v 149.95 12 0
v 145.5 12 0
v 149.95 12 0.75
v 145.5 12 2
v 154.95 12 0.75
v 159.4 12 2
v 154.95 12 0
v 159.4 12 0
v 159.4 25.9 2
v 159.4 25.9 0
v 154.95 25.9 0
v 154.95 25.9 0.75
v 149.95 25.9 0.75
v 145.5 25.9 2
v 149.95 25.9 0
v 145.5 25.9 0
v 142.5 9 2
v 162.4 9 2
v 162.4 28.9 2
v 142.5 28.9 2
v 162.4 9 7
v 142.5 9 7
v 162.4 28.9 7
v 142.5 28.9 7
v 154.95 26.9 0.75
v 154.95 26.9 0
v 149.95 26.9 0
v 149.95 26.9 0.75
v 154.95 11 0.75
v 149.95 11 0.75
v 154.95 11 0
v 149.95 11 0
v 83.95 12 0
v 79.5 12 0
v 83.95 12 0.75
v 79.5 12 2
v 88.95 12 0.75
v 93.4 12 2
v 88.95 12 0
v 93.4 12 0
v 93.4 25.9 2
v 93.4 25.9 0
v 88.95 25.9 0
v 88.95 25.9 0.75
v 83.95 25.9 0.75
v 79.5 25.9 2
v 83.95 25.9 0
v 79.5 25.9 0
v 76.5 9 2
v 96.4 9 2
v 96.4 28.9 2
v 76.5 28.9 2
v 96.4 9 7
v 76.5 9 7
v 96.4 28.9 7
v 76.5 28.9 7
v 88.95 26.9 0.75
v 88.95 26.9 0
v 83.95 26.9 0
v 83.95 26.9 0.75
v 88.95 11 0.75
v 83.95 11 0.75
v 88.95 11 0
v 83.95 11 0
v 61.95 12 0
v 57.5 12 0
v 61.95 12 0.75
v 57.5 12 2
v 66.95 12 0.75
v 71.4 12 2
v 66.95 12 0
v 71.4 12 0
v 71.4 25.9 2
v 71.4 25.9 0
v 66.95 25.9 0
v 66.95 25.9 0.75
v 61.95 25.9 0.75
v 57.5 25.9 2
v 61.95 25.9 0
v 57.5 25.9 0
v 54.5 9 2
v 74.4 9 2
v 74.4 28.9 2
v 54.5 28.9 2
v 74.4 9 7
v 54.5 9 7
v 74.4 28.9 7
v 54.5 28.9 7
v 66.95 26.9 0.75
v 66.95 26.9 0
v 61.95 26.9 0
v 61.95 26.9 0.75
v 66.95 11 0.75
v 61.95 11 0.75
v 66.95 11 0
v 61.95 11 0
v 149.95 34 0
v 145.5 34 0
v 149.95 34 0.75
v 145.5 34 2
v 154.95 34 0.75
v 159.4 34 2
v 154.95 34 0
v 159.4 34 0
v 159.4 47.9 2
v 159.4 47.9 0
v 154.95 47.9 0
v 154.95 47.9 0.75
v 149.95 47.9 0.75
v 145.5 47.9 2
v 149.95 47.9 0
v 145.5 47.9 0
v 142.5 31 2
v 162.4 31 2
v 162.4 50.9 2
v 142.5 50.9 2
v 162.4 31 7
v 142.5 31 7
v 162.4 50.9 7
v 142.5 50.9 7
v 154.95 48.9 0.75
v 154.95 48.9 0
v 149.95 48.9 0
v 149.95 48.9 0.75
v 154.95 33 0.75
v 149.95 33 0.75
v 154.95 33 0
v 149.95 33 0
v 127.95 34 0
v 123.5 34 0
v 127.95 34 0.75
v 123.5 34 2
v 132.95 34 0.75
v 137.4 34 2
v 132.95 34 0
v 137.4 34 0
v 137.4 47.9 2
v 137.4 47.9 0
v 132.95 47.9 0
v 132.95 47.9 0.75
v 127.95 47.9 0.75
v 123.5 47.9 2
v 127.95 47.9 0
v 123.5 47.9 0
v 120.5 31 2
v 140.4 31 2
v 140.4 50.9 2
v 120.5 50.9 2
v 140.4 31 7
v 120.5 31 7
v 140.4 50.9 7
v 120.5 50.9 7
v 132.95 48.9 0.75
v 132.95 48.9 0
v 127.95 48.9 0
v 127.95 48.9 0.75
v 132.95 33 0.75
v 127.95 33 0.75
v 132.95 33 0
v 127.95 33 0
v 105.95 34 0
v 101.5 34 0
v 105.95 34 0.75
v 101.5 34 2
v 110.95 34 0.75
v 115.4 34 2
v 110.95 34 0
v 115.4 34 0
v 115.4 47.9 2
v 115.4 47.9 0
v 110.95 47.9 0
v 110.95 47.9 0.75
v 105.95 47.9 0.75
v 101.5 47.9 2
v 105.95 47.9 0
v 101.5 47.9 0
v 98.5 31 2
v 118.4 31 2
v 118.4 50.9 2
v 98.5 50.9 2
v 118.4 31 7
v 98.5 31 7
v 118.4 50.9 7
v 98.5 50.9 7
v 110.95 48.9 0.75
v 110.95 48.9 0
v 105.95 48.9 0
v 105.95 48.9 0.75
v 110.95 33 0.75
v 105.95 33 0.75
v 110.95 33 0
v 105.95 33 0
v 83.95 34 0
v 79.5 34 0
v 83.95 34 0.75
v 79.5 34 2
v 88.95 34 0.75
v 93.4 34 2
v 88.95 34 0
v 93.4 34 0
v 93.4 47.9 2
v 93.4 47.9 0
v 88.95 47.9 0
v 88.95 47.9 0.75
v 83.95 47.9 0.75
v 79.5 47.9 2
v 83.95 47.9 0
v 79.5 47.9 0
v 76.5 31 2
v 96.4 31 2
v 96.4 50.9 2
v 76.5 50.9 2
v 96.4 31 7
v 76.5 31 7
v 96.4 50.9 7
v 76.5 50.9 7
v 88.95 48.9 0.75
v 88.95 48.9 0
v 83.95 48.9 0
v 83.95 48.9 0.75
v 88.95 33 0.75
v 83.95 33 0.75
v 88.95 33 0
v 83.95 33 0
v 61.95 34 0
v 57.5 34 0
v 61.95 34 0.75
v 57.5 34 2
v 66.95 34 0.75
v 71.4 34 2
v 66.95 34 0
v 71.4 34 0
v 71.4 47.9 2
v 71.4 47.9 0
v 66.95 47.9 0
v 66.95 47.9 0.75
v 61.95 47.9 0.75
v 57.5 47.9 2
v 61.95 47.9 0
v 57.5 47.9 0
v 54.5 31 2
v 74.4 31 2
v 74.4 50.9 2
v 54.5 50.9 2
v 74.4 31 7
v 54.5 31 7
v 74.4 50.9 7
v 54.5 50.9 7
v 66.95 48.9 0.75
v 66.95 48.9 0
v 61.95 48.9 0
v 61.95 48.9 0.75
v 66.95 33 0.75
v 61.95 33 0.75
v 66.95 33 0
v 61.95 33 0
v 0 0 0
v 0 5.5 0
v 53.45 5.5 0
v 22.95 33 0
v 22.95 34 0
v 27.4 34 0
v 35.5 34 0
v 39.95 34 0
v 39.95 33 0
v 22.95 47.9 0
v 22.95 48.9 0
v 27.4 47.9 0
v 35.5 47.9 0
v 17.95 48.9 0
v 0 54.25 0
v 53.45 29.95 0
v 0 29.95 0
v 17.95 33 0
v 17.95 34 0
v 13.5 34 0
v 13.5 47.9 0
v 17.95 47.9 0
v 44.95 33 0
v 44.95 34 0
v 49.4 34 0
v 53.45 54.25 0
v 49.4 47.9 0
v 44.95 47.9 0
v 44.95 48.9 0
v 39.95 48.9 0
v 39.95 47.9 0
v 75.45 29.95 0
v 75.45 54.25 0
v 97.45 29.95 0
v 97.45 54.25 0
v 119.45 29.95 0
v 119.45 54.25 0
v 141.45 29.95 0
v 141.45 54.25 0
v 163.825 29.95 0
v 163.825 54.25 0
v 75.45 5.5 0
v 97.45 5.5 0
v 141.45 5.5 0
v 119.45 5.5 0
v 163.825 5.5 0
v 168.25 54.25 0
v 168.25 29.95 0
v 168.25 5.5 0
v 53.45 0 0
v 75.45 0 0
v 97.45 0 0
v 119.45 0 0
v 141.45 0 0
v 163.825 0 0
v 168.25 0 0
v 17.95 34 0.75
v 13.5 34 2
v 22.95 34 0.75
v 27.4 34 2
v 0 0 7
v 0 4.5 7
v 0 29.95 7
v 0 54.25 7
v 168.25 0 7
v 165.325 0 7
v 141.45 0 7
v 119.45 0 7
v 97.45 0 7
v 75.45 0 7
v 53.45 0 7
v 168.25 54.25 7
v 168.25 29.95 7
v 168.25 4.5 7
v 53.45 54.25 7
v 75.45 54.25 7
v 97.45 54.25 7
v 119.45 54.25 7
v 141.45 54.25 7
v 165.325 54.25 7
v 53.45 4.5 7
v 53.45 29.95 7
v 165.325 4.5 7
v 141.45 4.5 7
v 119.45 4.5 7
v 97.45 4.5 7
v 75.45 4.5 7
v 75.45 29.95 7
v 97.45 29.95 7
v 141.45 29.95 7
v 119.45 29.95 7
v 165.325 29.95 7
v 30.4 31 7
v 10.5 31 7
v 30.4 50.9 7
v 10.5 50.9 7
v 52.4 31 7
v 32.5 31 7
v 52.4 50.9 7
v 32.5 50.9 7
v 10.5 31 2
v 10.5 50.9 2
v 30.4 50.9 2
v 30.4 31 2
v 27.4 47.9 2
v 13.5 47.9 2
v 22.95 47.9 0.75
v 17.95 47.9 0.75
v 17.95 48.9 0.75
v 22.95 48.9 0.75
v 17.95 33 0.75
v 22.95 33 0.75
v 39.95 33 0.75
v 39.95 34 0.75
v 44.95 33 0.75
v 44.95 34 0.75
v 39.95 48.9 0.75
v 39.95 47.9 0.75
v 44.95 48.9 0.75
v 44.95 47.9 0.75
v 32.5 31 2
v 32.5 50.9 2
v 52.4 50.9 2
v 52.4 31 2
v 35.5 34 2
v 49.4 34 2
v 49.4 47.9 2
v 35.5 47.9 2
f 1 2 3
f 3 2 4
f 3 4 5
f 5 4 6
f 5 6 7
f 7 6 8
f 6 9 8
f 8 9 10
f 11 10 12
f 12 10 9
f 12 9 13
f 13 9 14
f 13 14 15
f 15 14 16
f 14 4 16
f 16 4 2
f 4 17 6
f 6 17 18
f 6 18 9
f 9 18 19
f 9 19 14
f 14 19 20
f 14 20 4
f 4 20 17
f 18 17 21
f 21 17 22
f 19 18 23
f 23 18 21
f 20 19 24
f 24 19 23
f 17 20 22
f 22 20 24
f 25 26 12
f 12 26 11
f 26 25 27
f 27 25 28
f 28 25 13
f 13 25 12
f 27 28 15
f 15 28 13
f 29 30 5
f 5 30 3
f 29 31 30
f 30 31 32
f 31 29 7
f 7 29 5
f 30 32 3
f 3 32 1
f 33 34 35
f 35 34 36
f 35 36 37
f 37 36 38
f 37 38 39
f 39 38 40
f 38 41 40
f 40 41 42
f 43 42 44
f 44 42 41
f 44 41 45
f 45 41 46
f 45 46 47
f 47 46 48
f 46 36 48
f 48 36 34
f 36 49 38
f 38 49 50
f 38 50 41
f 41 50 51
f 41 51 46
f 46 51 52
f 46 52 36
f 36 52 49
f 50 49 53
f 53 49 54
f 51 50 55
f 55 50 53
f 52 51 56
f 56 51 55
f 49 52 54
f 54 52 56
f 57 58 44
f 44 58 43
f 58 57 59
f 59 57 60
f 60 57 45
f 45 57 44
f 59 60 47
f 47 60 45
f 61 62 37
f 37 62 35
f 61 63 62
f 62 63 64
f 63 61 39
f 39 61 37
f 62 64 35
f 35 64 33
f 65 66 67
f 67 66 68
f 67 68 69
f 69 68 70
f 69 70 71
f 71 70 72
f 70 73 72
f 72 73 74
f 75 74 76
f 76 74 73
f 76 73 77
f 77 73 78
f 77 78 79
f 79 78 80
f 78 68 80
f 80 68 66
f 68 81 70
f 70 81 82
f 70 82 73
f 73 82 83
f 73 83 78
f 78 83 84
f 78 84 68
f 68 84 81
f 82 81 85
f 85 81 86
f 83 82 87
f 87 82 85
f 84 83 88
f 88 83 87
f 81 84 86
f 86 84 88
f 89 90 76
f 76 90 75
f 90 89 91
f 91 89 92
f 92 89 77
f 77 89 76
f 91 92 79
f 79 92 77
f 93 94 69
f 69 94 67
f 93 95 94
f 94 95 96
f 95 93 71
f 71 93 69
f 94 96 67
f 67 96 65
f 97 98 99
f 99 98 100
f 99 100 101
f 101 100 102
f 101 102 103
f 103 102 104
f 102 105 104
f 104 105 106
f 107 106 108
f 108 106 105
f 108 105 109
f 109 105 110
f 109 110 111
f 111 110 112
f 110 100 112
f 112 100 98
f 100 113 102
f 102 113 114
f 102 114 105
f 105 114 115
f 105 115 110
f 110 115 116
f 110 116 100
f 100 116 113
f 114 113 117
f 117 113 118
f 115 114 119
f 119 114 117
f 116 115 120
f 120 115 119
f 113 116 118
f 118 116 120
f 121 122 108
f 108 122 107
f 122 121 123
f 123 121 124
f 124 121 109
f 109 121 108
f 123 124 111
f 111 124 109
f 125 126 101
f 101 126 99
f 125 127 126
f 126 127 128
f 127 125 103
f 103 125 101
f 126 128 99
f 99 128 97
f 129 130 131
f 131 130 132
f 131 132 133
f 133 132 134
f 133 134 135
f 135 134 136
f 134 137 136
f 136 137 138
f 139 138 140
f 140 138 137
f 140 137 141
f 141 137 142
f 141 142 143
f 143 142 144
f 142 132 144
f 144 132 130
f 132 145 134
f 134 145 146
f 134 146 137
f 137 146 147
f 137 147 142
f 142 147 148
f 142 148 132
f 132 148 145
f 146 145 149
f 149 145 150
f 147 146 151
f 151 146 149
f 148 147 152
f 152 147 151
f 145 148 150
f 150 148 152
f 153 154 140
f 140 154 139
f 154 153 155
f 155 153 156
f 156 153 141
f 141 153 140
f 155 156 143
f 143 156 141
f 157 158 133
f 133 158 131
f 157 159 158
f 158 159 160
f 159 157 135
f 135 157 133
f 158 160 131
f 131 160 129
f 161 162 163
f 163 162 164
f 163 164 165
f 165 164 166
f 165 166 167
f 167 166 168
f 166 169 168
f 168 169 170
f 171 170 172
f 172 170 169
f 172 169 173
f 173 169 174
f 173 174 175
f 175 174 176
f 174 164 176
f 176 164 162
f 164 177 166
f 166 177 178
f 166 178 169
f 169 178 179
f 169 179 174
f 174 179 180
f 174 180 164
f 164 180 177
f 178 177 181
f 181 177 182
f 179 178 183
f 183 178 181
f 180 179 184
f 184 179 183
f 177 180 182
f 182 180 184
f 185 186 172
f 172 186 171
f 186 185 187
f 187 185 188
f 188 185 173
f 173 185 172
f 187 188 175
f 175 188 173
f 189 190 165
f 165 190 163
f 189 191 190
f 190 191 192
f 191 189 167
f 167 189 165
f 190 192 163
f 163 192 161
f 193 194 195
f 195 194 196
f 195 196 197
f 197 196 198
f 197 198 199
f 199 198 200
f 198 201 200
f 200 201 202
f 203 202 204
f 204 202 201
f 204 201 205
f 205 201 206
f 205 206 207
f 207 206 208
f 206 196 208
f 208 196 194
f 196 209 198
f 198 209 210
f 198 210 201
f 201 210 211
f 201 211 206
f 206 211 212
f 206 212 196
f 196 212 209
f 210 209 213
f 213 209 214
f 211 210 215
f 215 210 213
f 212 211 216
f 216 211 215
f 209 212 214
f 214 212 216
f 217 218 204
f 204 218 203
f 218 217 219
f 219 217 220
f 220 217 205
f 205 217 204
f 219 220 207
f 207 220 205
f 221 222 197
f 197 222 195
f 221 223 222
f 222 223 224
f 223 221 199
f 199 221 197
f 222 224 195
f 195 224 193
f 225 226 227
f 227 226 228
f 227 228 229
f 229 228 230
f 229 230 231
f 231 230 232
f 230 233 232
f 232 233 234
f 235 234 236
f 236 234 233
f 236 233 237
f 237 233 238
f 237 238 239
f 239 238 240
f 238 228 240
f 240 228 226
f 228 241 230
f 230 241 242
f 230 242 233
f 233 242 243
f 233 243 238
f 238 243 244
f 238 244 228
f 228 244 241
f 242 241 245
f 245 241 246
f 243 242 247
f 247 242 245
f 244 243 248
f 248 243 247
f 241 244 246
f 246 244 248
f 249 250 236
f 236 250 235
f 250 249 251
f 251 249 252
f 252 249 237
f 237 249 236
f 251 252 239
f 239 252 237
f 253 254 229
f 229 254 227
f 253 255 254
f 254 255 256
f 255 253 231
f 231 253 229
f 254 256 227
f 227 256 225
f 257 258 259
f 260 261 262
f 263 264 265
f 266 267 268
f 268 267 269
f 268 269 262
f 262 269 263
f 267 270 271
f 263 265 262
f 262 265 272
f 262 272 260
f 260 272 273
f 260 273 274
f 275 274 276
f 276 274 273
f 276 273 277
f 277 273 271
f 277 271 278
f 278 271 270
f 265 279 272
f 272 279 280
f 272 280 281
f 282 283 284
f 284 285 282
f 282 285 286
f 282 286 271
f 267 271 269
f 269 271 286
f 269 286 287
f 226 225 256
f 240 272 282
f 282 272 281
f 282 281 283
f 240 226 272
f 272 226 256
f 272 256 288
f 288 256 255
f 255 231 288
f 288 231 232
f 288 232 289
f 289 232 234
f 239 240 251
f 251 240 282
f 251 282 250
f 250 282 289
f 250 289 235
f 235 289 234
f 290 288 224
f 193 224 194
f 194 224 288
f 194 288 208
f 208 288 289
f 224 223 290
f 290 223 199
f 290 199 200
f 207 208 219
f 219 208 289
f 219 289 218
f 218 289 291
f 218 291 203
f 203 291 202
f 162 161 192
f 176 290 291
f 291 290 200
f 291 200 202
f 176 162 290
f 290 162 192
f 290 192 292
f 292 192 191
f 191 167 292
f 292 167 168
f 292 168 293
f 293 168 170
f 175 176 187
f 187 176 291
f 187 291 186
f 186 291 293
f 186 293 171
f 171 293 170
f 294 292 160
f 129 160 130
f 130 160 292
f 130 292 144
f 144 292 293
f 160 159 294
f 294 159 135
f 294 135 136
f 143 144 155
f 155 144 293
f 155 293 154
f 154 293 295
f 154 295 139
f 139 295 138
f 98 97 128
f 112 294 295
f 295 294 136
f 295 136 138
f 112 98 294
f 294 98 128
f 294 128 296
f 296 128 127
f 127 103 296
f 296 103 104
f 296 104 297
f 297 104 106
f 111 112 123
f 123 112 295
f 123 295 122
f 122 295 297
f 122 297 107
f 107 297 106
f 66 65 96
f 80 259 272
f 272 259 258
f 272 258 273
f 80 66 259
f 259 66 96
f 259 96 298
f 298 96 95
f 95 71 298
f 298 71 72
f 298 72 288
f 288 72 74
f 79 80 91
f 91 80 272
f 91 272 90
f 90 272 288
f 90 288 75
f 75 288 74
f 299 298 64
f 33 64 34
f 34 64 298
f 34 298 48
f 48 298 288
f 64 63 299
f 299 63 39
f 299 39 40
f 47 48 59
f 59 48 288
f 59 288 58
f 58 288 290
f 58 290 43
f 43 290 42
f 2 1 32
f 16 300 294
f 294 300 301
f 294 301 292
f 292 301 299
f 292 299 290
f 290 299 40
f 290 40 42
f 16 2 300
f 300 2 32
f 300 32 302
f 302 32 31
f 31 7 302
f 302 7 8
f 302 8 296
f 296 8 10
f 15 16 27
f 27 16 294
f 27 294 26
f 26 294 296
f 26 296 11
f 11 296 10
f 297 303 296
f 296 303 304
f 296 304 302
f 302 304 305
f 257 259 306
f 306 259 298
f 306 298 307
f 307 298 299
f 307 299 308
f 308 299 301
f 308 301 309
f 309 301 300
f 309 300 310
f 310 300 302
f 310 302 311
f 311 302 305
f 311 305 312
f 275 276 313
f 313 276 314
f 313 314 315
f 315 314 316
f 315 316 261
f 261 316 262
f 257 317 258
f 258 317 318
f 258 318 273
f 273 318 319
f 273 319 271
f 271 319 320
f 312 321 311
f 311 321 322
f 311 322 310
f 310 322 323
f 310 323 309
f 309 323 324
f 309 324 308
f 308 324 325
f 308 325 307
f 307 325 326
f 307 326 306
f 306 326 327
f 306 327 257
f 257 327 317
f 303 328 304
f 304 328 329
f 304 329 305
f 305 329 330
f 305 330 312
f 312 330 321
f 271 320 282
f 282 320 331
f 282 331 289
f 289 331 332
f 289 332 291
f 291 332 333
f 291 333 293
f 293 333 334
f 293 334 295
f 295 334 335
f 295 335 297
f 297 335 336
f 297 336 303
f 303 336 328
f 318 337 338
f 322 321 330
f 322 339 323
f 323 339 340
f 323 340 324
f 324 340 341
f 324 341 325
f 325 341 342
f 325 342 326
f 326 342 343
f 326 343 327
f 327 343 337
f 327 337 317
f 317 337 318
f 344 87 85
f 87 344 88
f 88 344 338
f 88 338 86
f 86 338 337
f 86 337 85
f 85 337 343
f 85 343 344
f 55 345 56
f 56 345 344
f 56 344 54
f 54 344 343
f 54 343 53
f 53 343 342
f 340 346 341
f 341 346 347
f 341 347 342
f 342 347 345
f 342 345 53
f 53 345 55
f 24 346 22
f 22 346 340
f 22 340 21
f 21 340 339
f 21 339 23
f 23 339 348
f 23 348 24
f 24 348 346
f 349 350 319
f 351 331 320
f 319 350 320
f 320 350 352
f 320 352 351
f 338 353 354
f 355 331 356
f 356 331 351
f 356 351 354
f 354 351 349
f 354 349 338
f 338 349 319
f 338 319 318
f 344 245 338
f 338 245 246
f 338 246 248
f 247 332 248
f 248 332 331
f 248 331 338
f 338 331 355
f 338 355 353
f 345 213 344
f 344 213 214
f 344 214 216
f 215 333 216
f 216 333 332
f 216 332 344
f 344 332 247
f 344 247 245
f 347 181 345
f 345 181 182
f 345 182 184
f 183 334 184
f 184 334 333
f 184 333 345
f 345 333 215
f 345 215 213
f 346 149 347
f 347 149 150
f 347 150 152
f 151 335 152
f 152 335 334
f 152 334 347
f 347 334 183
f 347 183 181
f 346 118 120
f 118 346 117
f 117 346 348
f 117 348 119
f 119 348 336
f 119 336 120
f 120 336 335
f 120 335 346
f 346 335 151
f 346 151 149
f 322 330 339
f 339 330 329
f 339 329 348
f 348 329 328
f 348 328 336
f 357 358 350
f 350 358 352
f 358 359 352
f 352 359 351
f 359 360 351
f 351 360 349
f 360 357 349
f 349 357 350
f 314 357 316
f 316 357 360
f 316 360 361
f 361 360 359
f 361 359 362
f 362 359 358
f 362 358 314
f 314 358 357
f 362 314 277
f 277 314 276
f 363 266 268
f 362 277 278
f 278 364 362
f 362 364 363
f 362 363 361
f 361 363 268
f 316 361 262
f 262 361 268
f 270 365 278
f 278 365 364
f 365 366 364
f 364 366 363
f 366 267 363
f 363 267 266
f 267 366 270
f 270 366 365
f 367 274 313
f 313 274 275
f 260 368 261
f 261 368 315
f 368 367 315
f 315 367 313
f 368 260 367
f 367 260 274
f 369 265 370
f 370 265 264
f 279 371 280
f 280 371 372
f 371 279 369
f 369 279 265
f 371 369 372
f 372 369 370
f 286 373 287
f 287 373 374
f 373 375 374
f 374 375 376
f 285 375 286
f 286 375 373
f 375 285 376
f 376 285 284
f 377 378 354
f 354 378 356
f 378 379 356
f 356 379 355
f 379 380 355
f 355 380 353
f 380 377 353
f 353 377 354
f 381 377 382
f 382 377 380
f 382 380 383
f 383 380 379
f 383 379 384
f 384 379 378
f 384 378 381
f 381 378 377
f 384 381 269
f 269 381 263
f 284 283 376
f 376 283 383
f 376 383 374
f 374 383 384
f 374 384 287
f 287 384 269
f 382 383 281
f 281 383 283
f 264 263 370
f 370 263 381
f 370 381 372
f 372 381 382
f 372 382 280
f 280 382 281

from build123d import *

# Parameters (mm, degrees)
SKETCH6_W                 = 168.25
SKETCH6_H                 = 54.25
BOSS_EXTRUDE2_DEPTH       = 7
SKETCH7_W                 = 19.9
SKETCH7_H                 = 19.9
CUT_EXTRUDE4_DEPTH        = 5
SKETCH8_W                 = 13.9
SKETCH8_H                 = 13.9
CUT_EXTRUDE5_DEPTH        = 4
SKETCH9_W                 = 5
SKETCH9_H                 = 0.75
CUT_EXTRUDE6_DEPTH        = 1
LPATTERN1_COUNT           = 7
LPATTERN1_PITCH           = 22
LPATTERN1_COUNT_DIR2      = 2
LPATTERN1_PITCH_DIR2      = 22
LPATTERN1_COPY_1_SKETCH_W = 5
LPATTERN1_COPY_1_SKETCH_H = 0.75
LPATTERN1_COPY_1_DEPTH    = 1
LPATTERN1_COPY_2_SKETCH_W = 5
LPATTERN1_COPY_2_SKETCH_H = 0.75
LPATTERN1_COPY_2_DEPTH    = 1
LPATTERN1_COPY_3_SKETCH_W = 5
LPATTERN1_COPY_3_SKETCH_H = 0.75
LPATTERN1_COPY_3_DEPTH    = 1
LPATTERN1_COPY_4_SKETCH_W = 5
LPATTERN1_COPY_4_SKETCH_H = 0.75
LPATTERN1_COPY_4_DEPTH    = 1
LPATTERN1_COPY_5_SKETCH_W = 5
LPATTERN1_COPY_5_SKETCH_H = 0.75
LPATTERN1_COPY_5_DEPTH    = 1
LPATTERN1_COPY_6_SKETCH_W = 5
LPATTERN1_COPY_6_SKETCH_H = 0.75
LPATTERN1_COPY_6_DEPTH    = 1
LPATTERN1_COPY_7_SKETCH_W = 5
LPATTERN1_COPY_7_SKETCH_H = 0.75
LPATTERN1_COPY_7_DEPTH    = 1
LPATTERN1_COPY_8_SKETCH_W = 5
LPATTERN1_COPY_8_SKETCH_H = 0.75
LPATTERN1_COPY_8_DEPTH    = 1
LPATTERN1_COPY_9_SKETCH_W = 5
LPATTERN1_COPY_9_SKETCH_H = 0.75
LPATTERN1_COPY_9_DEPTH    = 1


with BuildPart() as part:
    # Sketch6 → Boss-Extrude2 (new body)
    with BuildSketch(Plane.XY):
        with Locations((84.125, 27.125)):
            Rectangle(SKETCH6_W, SKETCH6_H)
    extrude(amount=BOSS_EXTRUDE2_DEPTH)

    # Sketch7 → Cut-Extrude4 (cut)
    with BuildSketch(Plane.XY.offset(7)):
        with Locations((20.45, 40.95)):
            Rectangle(SKETCH7_W, SKETCH7_H)
    cut_extrude4 = extrude(amount=-CUT_EXTRUDE4_DEPTH, mode=Mode.SUBTRACT)

    # Sketch8 → Cut-Extrude5 (cut)
    with BuildSketch(Plane.XY.offset(2)):
        with Locations((20.45, 40.95)):
            Rectangle(SKETCH8_W, SKETCH8_H)
    cut_extrude5 = extrude(amount=-CUT_EXTRUDE5_DEPTH, mode=Mode.SUBTRACT)

    # Sketch9 → Cut-Extrude6 (cut)
    with BuildSketch(Plane(origin=(0, 47.9, 0), x_dir=(-1, 0, 0), z_dir=(0, -1, 0))):
        with Locations((-20.45, -0.375)):
            Rectangle(SKETCH9_W, SKETCH9_H)
    cut_extrude6 = extrude(amount=-CUT_EXTRUDE6_DEPTH, mode=Mode.SUBTRACT)

    # Mirror2: Cut-Extrude6 across plane
    add(cut_extrude6.mirror(Plane(origin=(0, 40.95, 0), x_dir=(0, 0, 1), z_dir=(0, -1, 0))), mode=Mode.SUBTRACT)

    # LPattern1: Cut-Extrude4, Cut-Extrude5, Cut-Extrude6 7 × 2, 4 skipped
    with Locations(*[(i * LPATTERN1_PITCH, -j * LPATTERN1_PITCH_DIR2, 0) for i in range(LPATTERN1_COUNT) for j in range(LPATTERN1_COUNT_DIR2) if (i, j) not in ((0, 0), (0, 1), (1, 1), (4, 1), (5, 1))]):
        add(cut_extrude4, mode=Mode.SUBTRACT)
        add(cut_extrude5, mode=Mode.SUBTRACT)
        add(cut_extrude6, mode=Mode.SUBTRACT)

    # LPattern1 copy 1 sketch → LPattern1 copy 1 (cut)
    with BuildSketch(Plane(origin=(22, 34, 0), x_dir=(-1, 0, 0), z_dir=(0, 1, 0))):
        with Locations((-20.45, 0.375)):
            Rectangle(LPATTERN1_COPY_1_SKETCH_W, LPATTERN1_COPY_1_SKETCH_H)
    extrude(amount=-LPATTERN1_COPY_1_DEPTH, mode=Mode.SUBTRACT)

    # LPattern1 copy 2 sketch → LPattern1 copy 2 (cut)
    with BuildSketch(Plane(origin=(44, 34, 0), x_dir=(-1, 0, 0), z_dir=(0, 1, 0))):
        with Locations((-20.45, 0.375)):
            Rectangle(LPATTERN1_COPY_2_SKETCH_W, LPATTERN1_COPY_2_SKETCH_H)
    extrude(amount=-LPATTERN1_COPY_2_DEPTH, mode=Mode.SUBTRACT)

    # LPattern1 copy 3 sketch → LPattern1 copy 3 (cut)
    with BuildSketch(Plane(origin=(44, 12, 0), x_dir=(-1, 0, 0), z_dir=(0, 1, 0))):
        with Locations((-20.45, 0.375)):
            Rectangle(LPATTERN1_COPY_3_SKETCH_W, LPATTERN1_COPY_3_SKETCH_H)
    extrude(amount=-LPATTERN1_COPY_3_DEPTH, mode=Mode.SUBTRACT)

    # LPattern1 copy 4 sketch → LPattern1 copy 4 (cut)
    with BuildSketch(Plane(origin=(66, 34, 0), x_dir=(-1, 0, 0), z_dir=(0, 1, 0))):
        with Locations((-20.45, 0.375)):
            Rectangle(LPATTERN1_COPY_4_SKETCH_W, LPATTERN1_COPY_4_SKETCH_H)
    extrude(amount=-LPATTERN1_COPY_4_DEPTH, mode=Mode.SUBTRACT)

    # LPattern1 copy 5 sketch → LPattern1 copy 5 (cut)
    with BuildSketch(Plane(origin=(66, 12, 0), x_dir=(-1, 0, 0), z_dir=(0, 1, 0))):
        with Locations((-20.45, 0.375)):
            Rectangle(LPATTERN1_COPY_5_SKETCH_W, LPATTERN1_COPY_5_SKETCH_H)
    extrude(amount=-LPATTERN1_COPY_5_DEPTH, mode=Mode.SUBTRACT)

    # LPattern1 copy 6 sketch → LPattern1 copy 6 (cut)
    with BuildSketch(Plane(origin=(88, 34, 0), x_dir=(-1, 0, 0), z_dir=(0, 1, 0))):
        with Locations((-20.45, 0.375)):
            Rectangle(LPATTERN1_COPY_6_SKETCH_W, LPATTERN1_COPY_6_SKETCH_H)
    extrude(amount=-LPATTERN1_COPY_6_DEPTH, mode=Mode.SUBTRACT)

    # LPattern1 copy 7 sketch → LPattern1 copy 7 (cut)
    with BuildSketch(Plane(origin=(110, 34, 0), x_dir=(-1, 0, 0), z_dir=(0, 1, 0))):
        with Locations((-20.45, 0.375)):
            Rectangle(LPATTERN1_COPY_7_SKETCH_W, LPATTERN1_COPY_7_SKETCH_H)
    extrude(amount=-LPATTERN1_COPY_7_DEPTH, mode=Mode.SUBTRACT)

    # LPattern1 copy 8 sketch → LPattern1 copy 8 (cut)
    with BuildSketch(Plane(origin=(132, 34, 0), x_dir=(-1, 0, 0), z_dir=(0, 1, 0))):
        with Locations((-20.45, 0.375)):
            Rectangle(LPATTERN1_COPY_8_SKETCH_W, LPATTERN1_COPY_8_SKETCH_H)
    extrude(amount=-LPATTERN1_COPY_8_DEPTH, mode=Mode.SUBTRACT)

    # LPattern1 copy 9 sketch → LPattern1 copy 9 (cut)
    with BuildSketch(Plane(origin=(132, 12, 0), x_dir=(-1, 0, 0), z_dir=(0, 1, 0))):
        with Locations((-20.45, 0.375)):
            Rectangle(LPATTERN1_COPY_9_SKETCH_W, LPATTERN1_COPY_9_SKETCH_H)
    extrude(amount=-LPATTERN1_COPY_9_DEPTH, mode=Mode.SUBTRACT)


solid = part.part
